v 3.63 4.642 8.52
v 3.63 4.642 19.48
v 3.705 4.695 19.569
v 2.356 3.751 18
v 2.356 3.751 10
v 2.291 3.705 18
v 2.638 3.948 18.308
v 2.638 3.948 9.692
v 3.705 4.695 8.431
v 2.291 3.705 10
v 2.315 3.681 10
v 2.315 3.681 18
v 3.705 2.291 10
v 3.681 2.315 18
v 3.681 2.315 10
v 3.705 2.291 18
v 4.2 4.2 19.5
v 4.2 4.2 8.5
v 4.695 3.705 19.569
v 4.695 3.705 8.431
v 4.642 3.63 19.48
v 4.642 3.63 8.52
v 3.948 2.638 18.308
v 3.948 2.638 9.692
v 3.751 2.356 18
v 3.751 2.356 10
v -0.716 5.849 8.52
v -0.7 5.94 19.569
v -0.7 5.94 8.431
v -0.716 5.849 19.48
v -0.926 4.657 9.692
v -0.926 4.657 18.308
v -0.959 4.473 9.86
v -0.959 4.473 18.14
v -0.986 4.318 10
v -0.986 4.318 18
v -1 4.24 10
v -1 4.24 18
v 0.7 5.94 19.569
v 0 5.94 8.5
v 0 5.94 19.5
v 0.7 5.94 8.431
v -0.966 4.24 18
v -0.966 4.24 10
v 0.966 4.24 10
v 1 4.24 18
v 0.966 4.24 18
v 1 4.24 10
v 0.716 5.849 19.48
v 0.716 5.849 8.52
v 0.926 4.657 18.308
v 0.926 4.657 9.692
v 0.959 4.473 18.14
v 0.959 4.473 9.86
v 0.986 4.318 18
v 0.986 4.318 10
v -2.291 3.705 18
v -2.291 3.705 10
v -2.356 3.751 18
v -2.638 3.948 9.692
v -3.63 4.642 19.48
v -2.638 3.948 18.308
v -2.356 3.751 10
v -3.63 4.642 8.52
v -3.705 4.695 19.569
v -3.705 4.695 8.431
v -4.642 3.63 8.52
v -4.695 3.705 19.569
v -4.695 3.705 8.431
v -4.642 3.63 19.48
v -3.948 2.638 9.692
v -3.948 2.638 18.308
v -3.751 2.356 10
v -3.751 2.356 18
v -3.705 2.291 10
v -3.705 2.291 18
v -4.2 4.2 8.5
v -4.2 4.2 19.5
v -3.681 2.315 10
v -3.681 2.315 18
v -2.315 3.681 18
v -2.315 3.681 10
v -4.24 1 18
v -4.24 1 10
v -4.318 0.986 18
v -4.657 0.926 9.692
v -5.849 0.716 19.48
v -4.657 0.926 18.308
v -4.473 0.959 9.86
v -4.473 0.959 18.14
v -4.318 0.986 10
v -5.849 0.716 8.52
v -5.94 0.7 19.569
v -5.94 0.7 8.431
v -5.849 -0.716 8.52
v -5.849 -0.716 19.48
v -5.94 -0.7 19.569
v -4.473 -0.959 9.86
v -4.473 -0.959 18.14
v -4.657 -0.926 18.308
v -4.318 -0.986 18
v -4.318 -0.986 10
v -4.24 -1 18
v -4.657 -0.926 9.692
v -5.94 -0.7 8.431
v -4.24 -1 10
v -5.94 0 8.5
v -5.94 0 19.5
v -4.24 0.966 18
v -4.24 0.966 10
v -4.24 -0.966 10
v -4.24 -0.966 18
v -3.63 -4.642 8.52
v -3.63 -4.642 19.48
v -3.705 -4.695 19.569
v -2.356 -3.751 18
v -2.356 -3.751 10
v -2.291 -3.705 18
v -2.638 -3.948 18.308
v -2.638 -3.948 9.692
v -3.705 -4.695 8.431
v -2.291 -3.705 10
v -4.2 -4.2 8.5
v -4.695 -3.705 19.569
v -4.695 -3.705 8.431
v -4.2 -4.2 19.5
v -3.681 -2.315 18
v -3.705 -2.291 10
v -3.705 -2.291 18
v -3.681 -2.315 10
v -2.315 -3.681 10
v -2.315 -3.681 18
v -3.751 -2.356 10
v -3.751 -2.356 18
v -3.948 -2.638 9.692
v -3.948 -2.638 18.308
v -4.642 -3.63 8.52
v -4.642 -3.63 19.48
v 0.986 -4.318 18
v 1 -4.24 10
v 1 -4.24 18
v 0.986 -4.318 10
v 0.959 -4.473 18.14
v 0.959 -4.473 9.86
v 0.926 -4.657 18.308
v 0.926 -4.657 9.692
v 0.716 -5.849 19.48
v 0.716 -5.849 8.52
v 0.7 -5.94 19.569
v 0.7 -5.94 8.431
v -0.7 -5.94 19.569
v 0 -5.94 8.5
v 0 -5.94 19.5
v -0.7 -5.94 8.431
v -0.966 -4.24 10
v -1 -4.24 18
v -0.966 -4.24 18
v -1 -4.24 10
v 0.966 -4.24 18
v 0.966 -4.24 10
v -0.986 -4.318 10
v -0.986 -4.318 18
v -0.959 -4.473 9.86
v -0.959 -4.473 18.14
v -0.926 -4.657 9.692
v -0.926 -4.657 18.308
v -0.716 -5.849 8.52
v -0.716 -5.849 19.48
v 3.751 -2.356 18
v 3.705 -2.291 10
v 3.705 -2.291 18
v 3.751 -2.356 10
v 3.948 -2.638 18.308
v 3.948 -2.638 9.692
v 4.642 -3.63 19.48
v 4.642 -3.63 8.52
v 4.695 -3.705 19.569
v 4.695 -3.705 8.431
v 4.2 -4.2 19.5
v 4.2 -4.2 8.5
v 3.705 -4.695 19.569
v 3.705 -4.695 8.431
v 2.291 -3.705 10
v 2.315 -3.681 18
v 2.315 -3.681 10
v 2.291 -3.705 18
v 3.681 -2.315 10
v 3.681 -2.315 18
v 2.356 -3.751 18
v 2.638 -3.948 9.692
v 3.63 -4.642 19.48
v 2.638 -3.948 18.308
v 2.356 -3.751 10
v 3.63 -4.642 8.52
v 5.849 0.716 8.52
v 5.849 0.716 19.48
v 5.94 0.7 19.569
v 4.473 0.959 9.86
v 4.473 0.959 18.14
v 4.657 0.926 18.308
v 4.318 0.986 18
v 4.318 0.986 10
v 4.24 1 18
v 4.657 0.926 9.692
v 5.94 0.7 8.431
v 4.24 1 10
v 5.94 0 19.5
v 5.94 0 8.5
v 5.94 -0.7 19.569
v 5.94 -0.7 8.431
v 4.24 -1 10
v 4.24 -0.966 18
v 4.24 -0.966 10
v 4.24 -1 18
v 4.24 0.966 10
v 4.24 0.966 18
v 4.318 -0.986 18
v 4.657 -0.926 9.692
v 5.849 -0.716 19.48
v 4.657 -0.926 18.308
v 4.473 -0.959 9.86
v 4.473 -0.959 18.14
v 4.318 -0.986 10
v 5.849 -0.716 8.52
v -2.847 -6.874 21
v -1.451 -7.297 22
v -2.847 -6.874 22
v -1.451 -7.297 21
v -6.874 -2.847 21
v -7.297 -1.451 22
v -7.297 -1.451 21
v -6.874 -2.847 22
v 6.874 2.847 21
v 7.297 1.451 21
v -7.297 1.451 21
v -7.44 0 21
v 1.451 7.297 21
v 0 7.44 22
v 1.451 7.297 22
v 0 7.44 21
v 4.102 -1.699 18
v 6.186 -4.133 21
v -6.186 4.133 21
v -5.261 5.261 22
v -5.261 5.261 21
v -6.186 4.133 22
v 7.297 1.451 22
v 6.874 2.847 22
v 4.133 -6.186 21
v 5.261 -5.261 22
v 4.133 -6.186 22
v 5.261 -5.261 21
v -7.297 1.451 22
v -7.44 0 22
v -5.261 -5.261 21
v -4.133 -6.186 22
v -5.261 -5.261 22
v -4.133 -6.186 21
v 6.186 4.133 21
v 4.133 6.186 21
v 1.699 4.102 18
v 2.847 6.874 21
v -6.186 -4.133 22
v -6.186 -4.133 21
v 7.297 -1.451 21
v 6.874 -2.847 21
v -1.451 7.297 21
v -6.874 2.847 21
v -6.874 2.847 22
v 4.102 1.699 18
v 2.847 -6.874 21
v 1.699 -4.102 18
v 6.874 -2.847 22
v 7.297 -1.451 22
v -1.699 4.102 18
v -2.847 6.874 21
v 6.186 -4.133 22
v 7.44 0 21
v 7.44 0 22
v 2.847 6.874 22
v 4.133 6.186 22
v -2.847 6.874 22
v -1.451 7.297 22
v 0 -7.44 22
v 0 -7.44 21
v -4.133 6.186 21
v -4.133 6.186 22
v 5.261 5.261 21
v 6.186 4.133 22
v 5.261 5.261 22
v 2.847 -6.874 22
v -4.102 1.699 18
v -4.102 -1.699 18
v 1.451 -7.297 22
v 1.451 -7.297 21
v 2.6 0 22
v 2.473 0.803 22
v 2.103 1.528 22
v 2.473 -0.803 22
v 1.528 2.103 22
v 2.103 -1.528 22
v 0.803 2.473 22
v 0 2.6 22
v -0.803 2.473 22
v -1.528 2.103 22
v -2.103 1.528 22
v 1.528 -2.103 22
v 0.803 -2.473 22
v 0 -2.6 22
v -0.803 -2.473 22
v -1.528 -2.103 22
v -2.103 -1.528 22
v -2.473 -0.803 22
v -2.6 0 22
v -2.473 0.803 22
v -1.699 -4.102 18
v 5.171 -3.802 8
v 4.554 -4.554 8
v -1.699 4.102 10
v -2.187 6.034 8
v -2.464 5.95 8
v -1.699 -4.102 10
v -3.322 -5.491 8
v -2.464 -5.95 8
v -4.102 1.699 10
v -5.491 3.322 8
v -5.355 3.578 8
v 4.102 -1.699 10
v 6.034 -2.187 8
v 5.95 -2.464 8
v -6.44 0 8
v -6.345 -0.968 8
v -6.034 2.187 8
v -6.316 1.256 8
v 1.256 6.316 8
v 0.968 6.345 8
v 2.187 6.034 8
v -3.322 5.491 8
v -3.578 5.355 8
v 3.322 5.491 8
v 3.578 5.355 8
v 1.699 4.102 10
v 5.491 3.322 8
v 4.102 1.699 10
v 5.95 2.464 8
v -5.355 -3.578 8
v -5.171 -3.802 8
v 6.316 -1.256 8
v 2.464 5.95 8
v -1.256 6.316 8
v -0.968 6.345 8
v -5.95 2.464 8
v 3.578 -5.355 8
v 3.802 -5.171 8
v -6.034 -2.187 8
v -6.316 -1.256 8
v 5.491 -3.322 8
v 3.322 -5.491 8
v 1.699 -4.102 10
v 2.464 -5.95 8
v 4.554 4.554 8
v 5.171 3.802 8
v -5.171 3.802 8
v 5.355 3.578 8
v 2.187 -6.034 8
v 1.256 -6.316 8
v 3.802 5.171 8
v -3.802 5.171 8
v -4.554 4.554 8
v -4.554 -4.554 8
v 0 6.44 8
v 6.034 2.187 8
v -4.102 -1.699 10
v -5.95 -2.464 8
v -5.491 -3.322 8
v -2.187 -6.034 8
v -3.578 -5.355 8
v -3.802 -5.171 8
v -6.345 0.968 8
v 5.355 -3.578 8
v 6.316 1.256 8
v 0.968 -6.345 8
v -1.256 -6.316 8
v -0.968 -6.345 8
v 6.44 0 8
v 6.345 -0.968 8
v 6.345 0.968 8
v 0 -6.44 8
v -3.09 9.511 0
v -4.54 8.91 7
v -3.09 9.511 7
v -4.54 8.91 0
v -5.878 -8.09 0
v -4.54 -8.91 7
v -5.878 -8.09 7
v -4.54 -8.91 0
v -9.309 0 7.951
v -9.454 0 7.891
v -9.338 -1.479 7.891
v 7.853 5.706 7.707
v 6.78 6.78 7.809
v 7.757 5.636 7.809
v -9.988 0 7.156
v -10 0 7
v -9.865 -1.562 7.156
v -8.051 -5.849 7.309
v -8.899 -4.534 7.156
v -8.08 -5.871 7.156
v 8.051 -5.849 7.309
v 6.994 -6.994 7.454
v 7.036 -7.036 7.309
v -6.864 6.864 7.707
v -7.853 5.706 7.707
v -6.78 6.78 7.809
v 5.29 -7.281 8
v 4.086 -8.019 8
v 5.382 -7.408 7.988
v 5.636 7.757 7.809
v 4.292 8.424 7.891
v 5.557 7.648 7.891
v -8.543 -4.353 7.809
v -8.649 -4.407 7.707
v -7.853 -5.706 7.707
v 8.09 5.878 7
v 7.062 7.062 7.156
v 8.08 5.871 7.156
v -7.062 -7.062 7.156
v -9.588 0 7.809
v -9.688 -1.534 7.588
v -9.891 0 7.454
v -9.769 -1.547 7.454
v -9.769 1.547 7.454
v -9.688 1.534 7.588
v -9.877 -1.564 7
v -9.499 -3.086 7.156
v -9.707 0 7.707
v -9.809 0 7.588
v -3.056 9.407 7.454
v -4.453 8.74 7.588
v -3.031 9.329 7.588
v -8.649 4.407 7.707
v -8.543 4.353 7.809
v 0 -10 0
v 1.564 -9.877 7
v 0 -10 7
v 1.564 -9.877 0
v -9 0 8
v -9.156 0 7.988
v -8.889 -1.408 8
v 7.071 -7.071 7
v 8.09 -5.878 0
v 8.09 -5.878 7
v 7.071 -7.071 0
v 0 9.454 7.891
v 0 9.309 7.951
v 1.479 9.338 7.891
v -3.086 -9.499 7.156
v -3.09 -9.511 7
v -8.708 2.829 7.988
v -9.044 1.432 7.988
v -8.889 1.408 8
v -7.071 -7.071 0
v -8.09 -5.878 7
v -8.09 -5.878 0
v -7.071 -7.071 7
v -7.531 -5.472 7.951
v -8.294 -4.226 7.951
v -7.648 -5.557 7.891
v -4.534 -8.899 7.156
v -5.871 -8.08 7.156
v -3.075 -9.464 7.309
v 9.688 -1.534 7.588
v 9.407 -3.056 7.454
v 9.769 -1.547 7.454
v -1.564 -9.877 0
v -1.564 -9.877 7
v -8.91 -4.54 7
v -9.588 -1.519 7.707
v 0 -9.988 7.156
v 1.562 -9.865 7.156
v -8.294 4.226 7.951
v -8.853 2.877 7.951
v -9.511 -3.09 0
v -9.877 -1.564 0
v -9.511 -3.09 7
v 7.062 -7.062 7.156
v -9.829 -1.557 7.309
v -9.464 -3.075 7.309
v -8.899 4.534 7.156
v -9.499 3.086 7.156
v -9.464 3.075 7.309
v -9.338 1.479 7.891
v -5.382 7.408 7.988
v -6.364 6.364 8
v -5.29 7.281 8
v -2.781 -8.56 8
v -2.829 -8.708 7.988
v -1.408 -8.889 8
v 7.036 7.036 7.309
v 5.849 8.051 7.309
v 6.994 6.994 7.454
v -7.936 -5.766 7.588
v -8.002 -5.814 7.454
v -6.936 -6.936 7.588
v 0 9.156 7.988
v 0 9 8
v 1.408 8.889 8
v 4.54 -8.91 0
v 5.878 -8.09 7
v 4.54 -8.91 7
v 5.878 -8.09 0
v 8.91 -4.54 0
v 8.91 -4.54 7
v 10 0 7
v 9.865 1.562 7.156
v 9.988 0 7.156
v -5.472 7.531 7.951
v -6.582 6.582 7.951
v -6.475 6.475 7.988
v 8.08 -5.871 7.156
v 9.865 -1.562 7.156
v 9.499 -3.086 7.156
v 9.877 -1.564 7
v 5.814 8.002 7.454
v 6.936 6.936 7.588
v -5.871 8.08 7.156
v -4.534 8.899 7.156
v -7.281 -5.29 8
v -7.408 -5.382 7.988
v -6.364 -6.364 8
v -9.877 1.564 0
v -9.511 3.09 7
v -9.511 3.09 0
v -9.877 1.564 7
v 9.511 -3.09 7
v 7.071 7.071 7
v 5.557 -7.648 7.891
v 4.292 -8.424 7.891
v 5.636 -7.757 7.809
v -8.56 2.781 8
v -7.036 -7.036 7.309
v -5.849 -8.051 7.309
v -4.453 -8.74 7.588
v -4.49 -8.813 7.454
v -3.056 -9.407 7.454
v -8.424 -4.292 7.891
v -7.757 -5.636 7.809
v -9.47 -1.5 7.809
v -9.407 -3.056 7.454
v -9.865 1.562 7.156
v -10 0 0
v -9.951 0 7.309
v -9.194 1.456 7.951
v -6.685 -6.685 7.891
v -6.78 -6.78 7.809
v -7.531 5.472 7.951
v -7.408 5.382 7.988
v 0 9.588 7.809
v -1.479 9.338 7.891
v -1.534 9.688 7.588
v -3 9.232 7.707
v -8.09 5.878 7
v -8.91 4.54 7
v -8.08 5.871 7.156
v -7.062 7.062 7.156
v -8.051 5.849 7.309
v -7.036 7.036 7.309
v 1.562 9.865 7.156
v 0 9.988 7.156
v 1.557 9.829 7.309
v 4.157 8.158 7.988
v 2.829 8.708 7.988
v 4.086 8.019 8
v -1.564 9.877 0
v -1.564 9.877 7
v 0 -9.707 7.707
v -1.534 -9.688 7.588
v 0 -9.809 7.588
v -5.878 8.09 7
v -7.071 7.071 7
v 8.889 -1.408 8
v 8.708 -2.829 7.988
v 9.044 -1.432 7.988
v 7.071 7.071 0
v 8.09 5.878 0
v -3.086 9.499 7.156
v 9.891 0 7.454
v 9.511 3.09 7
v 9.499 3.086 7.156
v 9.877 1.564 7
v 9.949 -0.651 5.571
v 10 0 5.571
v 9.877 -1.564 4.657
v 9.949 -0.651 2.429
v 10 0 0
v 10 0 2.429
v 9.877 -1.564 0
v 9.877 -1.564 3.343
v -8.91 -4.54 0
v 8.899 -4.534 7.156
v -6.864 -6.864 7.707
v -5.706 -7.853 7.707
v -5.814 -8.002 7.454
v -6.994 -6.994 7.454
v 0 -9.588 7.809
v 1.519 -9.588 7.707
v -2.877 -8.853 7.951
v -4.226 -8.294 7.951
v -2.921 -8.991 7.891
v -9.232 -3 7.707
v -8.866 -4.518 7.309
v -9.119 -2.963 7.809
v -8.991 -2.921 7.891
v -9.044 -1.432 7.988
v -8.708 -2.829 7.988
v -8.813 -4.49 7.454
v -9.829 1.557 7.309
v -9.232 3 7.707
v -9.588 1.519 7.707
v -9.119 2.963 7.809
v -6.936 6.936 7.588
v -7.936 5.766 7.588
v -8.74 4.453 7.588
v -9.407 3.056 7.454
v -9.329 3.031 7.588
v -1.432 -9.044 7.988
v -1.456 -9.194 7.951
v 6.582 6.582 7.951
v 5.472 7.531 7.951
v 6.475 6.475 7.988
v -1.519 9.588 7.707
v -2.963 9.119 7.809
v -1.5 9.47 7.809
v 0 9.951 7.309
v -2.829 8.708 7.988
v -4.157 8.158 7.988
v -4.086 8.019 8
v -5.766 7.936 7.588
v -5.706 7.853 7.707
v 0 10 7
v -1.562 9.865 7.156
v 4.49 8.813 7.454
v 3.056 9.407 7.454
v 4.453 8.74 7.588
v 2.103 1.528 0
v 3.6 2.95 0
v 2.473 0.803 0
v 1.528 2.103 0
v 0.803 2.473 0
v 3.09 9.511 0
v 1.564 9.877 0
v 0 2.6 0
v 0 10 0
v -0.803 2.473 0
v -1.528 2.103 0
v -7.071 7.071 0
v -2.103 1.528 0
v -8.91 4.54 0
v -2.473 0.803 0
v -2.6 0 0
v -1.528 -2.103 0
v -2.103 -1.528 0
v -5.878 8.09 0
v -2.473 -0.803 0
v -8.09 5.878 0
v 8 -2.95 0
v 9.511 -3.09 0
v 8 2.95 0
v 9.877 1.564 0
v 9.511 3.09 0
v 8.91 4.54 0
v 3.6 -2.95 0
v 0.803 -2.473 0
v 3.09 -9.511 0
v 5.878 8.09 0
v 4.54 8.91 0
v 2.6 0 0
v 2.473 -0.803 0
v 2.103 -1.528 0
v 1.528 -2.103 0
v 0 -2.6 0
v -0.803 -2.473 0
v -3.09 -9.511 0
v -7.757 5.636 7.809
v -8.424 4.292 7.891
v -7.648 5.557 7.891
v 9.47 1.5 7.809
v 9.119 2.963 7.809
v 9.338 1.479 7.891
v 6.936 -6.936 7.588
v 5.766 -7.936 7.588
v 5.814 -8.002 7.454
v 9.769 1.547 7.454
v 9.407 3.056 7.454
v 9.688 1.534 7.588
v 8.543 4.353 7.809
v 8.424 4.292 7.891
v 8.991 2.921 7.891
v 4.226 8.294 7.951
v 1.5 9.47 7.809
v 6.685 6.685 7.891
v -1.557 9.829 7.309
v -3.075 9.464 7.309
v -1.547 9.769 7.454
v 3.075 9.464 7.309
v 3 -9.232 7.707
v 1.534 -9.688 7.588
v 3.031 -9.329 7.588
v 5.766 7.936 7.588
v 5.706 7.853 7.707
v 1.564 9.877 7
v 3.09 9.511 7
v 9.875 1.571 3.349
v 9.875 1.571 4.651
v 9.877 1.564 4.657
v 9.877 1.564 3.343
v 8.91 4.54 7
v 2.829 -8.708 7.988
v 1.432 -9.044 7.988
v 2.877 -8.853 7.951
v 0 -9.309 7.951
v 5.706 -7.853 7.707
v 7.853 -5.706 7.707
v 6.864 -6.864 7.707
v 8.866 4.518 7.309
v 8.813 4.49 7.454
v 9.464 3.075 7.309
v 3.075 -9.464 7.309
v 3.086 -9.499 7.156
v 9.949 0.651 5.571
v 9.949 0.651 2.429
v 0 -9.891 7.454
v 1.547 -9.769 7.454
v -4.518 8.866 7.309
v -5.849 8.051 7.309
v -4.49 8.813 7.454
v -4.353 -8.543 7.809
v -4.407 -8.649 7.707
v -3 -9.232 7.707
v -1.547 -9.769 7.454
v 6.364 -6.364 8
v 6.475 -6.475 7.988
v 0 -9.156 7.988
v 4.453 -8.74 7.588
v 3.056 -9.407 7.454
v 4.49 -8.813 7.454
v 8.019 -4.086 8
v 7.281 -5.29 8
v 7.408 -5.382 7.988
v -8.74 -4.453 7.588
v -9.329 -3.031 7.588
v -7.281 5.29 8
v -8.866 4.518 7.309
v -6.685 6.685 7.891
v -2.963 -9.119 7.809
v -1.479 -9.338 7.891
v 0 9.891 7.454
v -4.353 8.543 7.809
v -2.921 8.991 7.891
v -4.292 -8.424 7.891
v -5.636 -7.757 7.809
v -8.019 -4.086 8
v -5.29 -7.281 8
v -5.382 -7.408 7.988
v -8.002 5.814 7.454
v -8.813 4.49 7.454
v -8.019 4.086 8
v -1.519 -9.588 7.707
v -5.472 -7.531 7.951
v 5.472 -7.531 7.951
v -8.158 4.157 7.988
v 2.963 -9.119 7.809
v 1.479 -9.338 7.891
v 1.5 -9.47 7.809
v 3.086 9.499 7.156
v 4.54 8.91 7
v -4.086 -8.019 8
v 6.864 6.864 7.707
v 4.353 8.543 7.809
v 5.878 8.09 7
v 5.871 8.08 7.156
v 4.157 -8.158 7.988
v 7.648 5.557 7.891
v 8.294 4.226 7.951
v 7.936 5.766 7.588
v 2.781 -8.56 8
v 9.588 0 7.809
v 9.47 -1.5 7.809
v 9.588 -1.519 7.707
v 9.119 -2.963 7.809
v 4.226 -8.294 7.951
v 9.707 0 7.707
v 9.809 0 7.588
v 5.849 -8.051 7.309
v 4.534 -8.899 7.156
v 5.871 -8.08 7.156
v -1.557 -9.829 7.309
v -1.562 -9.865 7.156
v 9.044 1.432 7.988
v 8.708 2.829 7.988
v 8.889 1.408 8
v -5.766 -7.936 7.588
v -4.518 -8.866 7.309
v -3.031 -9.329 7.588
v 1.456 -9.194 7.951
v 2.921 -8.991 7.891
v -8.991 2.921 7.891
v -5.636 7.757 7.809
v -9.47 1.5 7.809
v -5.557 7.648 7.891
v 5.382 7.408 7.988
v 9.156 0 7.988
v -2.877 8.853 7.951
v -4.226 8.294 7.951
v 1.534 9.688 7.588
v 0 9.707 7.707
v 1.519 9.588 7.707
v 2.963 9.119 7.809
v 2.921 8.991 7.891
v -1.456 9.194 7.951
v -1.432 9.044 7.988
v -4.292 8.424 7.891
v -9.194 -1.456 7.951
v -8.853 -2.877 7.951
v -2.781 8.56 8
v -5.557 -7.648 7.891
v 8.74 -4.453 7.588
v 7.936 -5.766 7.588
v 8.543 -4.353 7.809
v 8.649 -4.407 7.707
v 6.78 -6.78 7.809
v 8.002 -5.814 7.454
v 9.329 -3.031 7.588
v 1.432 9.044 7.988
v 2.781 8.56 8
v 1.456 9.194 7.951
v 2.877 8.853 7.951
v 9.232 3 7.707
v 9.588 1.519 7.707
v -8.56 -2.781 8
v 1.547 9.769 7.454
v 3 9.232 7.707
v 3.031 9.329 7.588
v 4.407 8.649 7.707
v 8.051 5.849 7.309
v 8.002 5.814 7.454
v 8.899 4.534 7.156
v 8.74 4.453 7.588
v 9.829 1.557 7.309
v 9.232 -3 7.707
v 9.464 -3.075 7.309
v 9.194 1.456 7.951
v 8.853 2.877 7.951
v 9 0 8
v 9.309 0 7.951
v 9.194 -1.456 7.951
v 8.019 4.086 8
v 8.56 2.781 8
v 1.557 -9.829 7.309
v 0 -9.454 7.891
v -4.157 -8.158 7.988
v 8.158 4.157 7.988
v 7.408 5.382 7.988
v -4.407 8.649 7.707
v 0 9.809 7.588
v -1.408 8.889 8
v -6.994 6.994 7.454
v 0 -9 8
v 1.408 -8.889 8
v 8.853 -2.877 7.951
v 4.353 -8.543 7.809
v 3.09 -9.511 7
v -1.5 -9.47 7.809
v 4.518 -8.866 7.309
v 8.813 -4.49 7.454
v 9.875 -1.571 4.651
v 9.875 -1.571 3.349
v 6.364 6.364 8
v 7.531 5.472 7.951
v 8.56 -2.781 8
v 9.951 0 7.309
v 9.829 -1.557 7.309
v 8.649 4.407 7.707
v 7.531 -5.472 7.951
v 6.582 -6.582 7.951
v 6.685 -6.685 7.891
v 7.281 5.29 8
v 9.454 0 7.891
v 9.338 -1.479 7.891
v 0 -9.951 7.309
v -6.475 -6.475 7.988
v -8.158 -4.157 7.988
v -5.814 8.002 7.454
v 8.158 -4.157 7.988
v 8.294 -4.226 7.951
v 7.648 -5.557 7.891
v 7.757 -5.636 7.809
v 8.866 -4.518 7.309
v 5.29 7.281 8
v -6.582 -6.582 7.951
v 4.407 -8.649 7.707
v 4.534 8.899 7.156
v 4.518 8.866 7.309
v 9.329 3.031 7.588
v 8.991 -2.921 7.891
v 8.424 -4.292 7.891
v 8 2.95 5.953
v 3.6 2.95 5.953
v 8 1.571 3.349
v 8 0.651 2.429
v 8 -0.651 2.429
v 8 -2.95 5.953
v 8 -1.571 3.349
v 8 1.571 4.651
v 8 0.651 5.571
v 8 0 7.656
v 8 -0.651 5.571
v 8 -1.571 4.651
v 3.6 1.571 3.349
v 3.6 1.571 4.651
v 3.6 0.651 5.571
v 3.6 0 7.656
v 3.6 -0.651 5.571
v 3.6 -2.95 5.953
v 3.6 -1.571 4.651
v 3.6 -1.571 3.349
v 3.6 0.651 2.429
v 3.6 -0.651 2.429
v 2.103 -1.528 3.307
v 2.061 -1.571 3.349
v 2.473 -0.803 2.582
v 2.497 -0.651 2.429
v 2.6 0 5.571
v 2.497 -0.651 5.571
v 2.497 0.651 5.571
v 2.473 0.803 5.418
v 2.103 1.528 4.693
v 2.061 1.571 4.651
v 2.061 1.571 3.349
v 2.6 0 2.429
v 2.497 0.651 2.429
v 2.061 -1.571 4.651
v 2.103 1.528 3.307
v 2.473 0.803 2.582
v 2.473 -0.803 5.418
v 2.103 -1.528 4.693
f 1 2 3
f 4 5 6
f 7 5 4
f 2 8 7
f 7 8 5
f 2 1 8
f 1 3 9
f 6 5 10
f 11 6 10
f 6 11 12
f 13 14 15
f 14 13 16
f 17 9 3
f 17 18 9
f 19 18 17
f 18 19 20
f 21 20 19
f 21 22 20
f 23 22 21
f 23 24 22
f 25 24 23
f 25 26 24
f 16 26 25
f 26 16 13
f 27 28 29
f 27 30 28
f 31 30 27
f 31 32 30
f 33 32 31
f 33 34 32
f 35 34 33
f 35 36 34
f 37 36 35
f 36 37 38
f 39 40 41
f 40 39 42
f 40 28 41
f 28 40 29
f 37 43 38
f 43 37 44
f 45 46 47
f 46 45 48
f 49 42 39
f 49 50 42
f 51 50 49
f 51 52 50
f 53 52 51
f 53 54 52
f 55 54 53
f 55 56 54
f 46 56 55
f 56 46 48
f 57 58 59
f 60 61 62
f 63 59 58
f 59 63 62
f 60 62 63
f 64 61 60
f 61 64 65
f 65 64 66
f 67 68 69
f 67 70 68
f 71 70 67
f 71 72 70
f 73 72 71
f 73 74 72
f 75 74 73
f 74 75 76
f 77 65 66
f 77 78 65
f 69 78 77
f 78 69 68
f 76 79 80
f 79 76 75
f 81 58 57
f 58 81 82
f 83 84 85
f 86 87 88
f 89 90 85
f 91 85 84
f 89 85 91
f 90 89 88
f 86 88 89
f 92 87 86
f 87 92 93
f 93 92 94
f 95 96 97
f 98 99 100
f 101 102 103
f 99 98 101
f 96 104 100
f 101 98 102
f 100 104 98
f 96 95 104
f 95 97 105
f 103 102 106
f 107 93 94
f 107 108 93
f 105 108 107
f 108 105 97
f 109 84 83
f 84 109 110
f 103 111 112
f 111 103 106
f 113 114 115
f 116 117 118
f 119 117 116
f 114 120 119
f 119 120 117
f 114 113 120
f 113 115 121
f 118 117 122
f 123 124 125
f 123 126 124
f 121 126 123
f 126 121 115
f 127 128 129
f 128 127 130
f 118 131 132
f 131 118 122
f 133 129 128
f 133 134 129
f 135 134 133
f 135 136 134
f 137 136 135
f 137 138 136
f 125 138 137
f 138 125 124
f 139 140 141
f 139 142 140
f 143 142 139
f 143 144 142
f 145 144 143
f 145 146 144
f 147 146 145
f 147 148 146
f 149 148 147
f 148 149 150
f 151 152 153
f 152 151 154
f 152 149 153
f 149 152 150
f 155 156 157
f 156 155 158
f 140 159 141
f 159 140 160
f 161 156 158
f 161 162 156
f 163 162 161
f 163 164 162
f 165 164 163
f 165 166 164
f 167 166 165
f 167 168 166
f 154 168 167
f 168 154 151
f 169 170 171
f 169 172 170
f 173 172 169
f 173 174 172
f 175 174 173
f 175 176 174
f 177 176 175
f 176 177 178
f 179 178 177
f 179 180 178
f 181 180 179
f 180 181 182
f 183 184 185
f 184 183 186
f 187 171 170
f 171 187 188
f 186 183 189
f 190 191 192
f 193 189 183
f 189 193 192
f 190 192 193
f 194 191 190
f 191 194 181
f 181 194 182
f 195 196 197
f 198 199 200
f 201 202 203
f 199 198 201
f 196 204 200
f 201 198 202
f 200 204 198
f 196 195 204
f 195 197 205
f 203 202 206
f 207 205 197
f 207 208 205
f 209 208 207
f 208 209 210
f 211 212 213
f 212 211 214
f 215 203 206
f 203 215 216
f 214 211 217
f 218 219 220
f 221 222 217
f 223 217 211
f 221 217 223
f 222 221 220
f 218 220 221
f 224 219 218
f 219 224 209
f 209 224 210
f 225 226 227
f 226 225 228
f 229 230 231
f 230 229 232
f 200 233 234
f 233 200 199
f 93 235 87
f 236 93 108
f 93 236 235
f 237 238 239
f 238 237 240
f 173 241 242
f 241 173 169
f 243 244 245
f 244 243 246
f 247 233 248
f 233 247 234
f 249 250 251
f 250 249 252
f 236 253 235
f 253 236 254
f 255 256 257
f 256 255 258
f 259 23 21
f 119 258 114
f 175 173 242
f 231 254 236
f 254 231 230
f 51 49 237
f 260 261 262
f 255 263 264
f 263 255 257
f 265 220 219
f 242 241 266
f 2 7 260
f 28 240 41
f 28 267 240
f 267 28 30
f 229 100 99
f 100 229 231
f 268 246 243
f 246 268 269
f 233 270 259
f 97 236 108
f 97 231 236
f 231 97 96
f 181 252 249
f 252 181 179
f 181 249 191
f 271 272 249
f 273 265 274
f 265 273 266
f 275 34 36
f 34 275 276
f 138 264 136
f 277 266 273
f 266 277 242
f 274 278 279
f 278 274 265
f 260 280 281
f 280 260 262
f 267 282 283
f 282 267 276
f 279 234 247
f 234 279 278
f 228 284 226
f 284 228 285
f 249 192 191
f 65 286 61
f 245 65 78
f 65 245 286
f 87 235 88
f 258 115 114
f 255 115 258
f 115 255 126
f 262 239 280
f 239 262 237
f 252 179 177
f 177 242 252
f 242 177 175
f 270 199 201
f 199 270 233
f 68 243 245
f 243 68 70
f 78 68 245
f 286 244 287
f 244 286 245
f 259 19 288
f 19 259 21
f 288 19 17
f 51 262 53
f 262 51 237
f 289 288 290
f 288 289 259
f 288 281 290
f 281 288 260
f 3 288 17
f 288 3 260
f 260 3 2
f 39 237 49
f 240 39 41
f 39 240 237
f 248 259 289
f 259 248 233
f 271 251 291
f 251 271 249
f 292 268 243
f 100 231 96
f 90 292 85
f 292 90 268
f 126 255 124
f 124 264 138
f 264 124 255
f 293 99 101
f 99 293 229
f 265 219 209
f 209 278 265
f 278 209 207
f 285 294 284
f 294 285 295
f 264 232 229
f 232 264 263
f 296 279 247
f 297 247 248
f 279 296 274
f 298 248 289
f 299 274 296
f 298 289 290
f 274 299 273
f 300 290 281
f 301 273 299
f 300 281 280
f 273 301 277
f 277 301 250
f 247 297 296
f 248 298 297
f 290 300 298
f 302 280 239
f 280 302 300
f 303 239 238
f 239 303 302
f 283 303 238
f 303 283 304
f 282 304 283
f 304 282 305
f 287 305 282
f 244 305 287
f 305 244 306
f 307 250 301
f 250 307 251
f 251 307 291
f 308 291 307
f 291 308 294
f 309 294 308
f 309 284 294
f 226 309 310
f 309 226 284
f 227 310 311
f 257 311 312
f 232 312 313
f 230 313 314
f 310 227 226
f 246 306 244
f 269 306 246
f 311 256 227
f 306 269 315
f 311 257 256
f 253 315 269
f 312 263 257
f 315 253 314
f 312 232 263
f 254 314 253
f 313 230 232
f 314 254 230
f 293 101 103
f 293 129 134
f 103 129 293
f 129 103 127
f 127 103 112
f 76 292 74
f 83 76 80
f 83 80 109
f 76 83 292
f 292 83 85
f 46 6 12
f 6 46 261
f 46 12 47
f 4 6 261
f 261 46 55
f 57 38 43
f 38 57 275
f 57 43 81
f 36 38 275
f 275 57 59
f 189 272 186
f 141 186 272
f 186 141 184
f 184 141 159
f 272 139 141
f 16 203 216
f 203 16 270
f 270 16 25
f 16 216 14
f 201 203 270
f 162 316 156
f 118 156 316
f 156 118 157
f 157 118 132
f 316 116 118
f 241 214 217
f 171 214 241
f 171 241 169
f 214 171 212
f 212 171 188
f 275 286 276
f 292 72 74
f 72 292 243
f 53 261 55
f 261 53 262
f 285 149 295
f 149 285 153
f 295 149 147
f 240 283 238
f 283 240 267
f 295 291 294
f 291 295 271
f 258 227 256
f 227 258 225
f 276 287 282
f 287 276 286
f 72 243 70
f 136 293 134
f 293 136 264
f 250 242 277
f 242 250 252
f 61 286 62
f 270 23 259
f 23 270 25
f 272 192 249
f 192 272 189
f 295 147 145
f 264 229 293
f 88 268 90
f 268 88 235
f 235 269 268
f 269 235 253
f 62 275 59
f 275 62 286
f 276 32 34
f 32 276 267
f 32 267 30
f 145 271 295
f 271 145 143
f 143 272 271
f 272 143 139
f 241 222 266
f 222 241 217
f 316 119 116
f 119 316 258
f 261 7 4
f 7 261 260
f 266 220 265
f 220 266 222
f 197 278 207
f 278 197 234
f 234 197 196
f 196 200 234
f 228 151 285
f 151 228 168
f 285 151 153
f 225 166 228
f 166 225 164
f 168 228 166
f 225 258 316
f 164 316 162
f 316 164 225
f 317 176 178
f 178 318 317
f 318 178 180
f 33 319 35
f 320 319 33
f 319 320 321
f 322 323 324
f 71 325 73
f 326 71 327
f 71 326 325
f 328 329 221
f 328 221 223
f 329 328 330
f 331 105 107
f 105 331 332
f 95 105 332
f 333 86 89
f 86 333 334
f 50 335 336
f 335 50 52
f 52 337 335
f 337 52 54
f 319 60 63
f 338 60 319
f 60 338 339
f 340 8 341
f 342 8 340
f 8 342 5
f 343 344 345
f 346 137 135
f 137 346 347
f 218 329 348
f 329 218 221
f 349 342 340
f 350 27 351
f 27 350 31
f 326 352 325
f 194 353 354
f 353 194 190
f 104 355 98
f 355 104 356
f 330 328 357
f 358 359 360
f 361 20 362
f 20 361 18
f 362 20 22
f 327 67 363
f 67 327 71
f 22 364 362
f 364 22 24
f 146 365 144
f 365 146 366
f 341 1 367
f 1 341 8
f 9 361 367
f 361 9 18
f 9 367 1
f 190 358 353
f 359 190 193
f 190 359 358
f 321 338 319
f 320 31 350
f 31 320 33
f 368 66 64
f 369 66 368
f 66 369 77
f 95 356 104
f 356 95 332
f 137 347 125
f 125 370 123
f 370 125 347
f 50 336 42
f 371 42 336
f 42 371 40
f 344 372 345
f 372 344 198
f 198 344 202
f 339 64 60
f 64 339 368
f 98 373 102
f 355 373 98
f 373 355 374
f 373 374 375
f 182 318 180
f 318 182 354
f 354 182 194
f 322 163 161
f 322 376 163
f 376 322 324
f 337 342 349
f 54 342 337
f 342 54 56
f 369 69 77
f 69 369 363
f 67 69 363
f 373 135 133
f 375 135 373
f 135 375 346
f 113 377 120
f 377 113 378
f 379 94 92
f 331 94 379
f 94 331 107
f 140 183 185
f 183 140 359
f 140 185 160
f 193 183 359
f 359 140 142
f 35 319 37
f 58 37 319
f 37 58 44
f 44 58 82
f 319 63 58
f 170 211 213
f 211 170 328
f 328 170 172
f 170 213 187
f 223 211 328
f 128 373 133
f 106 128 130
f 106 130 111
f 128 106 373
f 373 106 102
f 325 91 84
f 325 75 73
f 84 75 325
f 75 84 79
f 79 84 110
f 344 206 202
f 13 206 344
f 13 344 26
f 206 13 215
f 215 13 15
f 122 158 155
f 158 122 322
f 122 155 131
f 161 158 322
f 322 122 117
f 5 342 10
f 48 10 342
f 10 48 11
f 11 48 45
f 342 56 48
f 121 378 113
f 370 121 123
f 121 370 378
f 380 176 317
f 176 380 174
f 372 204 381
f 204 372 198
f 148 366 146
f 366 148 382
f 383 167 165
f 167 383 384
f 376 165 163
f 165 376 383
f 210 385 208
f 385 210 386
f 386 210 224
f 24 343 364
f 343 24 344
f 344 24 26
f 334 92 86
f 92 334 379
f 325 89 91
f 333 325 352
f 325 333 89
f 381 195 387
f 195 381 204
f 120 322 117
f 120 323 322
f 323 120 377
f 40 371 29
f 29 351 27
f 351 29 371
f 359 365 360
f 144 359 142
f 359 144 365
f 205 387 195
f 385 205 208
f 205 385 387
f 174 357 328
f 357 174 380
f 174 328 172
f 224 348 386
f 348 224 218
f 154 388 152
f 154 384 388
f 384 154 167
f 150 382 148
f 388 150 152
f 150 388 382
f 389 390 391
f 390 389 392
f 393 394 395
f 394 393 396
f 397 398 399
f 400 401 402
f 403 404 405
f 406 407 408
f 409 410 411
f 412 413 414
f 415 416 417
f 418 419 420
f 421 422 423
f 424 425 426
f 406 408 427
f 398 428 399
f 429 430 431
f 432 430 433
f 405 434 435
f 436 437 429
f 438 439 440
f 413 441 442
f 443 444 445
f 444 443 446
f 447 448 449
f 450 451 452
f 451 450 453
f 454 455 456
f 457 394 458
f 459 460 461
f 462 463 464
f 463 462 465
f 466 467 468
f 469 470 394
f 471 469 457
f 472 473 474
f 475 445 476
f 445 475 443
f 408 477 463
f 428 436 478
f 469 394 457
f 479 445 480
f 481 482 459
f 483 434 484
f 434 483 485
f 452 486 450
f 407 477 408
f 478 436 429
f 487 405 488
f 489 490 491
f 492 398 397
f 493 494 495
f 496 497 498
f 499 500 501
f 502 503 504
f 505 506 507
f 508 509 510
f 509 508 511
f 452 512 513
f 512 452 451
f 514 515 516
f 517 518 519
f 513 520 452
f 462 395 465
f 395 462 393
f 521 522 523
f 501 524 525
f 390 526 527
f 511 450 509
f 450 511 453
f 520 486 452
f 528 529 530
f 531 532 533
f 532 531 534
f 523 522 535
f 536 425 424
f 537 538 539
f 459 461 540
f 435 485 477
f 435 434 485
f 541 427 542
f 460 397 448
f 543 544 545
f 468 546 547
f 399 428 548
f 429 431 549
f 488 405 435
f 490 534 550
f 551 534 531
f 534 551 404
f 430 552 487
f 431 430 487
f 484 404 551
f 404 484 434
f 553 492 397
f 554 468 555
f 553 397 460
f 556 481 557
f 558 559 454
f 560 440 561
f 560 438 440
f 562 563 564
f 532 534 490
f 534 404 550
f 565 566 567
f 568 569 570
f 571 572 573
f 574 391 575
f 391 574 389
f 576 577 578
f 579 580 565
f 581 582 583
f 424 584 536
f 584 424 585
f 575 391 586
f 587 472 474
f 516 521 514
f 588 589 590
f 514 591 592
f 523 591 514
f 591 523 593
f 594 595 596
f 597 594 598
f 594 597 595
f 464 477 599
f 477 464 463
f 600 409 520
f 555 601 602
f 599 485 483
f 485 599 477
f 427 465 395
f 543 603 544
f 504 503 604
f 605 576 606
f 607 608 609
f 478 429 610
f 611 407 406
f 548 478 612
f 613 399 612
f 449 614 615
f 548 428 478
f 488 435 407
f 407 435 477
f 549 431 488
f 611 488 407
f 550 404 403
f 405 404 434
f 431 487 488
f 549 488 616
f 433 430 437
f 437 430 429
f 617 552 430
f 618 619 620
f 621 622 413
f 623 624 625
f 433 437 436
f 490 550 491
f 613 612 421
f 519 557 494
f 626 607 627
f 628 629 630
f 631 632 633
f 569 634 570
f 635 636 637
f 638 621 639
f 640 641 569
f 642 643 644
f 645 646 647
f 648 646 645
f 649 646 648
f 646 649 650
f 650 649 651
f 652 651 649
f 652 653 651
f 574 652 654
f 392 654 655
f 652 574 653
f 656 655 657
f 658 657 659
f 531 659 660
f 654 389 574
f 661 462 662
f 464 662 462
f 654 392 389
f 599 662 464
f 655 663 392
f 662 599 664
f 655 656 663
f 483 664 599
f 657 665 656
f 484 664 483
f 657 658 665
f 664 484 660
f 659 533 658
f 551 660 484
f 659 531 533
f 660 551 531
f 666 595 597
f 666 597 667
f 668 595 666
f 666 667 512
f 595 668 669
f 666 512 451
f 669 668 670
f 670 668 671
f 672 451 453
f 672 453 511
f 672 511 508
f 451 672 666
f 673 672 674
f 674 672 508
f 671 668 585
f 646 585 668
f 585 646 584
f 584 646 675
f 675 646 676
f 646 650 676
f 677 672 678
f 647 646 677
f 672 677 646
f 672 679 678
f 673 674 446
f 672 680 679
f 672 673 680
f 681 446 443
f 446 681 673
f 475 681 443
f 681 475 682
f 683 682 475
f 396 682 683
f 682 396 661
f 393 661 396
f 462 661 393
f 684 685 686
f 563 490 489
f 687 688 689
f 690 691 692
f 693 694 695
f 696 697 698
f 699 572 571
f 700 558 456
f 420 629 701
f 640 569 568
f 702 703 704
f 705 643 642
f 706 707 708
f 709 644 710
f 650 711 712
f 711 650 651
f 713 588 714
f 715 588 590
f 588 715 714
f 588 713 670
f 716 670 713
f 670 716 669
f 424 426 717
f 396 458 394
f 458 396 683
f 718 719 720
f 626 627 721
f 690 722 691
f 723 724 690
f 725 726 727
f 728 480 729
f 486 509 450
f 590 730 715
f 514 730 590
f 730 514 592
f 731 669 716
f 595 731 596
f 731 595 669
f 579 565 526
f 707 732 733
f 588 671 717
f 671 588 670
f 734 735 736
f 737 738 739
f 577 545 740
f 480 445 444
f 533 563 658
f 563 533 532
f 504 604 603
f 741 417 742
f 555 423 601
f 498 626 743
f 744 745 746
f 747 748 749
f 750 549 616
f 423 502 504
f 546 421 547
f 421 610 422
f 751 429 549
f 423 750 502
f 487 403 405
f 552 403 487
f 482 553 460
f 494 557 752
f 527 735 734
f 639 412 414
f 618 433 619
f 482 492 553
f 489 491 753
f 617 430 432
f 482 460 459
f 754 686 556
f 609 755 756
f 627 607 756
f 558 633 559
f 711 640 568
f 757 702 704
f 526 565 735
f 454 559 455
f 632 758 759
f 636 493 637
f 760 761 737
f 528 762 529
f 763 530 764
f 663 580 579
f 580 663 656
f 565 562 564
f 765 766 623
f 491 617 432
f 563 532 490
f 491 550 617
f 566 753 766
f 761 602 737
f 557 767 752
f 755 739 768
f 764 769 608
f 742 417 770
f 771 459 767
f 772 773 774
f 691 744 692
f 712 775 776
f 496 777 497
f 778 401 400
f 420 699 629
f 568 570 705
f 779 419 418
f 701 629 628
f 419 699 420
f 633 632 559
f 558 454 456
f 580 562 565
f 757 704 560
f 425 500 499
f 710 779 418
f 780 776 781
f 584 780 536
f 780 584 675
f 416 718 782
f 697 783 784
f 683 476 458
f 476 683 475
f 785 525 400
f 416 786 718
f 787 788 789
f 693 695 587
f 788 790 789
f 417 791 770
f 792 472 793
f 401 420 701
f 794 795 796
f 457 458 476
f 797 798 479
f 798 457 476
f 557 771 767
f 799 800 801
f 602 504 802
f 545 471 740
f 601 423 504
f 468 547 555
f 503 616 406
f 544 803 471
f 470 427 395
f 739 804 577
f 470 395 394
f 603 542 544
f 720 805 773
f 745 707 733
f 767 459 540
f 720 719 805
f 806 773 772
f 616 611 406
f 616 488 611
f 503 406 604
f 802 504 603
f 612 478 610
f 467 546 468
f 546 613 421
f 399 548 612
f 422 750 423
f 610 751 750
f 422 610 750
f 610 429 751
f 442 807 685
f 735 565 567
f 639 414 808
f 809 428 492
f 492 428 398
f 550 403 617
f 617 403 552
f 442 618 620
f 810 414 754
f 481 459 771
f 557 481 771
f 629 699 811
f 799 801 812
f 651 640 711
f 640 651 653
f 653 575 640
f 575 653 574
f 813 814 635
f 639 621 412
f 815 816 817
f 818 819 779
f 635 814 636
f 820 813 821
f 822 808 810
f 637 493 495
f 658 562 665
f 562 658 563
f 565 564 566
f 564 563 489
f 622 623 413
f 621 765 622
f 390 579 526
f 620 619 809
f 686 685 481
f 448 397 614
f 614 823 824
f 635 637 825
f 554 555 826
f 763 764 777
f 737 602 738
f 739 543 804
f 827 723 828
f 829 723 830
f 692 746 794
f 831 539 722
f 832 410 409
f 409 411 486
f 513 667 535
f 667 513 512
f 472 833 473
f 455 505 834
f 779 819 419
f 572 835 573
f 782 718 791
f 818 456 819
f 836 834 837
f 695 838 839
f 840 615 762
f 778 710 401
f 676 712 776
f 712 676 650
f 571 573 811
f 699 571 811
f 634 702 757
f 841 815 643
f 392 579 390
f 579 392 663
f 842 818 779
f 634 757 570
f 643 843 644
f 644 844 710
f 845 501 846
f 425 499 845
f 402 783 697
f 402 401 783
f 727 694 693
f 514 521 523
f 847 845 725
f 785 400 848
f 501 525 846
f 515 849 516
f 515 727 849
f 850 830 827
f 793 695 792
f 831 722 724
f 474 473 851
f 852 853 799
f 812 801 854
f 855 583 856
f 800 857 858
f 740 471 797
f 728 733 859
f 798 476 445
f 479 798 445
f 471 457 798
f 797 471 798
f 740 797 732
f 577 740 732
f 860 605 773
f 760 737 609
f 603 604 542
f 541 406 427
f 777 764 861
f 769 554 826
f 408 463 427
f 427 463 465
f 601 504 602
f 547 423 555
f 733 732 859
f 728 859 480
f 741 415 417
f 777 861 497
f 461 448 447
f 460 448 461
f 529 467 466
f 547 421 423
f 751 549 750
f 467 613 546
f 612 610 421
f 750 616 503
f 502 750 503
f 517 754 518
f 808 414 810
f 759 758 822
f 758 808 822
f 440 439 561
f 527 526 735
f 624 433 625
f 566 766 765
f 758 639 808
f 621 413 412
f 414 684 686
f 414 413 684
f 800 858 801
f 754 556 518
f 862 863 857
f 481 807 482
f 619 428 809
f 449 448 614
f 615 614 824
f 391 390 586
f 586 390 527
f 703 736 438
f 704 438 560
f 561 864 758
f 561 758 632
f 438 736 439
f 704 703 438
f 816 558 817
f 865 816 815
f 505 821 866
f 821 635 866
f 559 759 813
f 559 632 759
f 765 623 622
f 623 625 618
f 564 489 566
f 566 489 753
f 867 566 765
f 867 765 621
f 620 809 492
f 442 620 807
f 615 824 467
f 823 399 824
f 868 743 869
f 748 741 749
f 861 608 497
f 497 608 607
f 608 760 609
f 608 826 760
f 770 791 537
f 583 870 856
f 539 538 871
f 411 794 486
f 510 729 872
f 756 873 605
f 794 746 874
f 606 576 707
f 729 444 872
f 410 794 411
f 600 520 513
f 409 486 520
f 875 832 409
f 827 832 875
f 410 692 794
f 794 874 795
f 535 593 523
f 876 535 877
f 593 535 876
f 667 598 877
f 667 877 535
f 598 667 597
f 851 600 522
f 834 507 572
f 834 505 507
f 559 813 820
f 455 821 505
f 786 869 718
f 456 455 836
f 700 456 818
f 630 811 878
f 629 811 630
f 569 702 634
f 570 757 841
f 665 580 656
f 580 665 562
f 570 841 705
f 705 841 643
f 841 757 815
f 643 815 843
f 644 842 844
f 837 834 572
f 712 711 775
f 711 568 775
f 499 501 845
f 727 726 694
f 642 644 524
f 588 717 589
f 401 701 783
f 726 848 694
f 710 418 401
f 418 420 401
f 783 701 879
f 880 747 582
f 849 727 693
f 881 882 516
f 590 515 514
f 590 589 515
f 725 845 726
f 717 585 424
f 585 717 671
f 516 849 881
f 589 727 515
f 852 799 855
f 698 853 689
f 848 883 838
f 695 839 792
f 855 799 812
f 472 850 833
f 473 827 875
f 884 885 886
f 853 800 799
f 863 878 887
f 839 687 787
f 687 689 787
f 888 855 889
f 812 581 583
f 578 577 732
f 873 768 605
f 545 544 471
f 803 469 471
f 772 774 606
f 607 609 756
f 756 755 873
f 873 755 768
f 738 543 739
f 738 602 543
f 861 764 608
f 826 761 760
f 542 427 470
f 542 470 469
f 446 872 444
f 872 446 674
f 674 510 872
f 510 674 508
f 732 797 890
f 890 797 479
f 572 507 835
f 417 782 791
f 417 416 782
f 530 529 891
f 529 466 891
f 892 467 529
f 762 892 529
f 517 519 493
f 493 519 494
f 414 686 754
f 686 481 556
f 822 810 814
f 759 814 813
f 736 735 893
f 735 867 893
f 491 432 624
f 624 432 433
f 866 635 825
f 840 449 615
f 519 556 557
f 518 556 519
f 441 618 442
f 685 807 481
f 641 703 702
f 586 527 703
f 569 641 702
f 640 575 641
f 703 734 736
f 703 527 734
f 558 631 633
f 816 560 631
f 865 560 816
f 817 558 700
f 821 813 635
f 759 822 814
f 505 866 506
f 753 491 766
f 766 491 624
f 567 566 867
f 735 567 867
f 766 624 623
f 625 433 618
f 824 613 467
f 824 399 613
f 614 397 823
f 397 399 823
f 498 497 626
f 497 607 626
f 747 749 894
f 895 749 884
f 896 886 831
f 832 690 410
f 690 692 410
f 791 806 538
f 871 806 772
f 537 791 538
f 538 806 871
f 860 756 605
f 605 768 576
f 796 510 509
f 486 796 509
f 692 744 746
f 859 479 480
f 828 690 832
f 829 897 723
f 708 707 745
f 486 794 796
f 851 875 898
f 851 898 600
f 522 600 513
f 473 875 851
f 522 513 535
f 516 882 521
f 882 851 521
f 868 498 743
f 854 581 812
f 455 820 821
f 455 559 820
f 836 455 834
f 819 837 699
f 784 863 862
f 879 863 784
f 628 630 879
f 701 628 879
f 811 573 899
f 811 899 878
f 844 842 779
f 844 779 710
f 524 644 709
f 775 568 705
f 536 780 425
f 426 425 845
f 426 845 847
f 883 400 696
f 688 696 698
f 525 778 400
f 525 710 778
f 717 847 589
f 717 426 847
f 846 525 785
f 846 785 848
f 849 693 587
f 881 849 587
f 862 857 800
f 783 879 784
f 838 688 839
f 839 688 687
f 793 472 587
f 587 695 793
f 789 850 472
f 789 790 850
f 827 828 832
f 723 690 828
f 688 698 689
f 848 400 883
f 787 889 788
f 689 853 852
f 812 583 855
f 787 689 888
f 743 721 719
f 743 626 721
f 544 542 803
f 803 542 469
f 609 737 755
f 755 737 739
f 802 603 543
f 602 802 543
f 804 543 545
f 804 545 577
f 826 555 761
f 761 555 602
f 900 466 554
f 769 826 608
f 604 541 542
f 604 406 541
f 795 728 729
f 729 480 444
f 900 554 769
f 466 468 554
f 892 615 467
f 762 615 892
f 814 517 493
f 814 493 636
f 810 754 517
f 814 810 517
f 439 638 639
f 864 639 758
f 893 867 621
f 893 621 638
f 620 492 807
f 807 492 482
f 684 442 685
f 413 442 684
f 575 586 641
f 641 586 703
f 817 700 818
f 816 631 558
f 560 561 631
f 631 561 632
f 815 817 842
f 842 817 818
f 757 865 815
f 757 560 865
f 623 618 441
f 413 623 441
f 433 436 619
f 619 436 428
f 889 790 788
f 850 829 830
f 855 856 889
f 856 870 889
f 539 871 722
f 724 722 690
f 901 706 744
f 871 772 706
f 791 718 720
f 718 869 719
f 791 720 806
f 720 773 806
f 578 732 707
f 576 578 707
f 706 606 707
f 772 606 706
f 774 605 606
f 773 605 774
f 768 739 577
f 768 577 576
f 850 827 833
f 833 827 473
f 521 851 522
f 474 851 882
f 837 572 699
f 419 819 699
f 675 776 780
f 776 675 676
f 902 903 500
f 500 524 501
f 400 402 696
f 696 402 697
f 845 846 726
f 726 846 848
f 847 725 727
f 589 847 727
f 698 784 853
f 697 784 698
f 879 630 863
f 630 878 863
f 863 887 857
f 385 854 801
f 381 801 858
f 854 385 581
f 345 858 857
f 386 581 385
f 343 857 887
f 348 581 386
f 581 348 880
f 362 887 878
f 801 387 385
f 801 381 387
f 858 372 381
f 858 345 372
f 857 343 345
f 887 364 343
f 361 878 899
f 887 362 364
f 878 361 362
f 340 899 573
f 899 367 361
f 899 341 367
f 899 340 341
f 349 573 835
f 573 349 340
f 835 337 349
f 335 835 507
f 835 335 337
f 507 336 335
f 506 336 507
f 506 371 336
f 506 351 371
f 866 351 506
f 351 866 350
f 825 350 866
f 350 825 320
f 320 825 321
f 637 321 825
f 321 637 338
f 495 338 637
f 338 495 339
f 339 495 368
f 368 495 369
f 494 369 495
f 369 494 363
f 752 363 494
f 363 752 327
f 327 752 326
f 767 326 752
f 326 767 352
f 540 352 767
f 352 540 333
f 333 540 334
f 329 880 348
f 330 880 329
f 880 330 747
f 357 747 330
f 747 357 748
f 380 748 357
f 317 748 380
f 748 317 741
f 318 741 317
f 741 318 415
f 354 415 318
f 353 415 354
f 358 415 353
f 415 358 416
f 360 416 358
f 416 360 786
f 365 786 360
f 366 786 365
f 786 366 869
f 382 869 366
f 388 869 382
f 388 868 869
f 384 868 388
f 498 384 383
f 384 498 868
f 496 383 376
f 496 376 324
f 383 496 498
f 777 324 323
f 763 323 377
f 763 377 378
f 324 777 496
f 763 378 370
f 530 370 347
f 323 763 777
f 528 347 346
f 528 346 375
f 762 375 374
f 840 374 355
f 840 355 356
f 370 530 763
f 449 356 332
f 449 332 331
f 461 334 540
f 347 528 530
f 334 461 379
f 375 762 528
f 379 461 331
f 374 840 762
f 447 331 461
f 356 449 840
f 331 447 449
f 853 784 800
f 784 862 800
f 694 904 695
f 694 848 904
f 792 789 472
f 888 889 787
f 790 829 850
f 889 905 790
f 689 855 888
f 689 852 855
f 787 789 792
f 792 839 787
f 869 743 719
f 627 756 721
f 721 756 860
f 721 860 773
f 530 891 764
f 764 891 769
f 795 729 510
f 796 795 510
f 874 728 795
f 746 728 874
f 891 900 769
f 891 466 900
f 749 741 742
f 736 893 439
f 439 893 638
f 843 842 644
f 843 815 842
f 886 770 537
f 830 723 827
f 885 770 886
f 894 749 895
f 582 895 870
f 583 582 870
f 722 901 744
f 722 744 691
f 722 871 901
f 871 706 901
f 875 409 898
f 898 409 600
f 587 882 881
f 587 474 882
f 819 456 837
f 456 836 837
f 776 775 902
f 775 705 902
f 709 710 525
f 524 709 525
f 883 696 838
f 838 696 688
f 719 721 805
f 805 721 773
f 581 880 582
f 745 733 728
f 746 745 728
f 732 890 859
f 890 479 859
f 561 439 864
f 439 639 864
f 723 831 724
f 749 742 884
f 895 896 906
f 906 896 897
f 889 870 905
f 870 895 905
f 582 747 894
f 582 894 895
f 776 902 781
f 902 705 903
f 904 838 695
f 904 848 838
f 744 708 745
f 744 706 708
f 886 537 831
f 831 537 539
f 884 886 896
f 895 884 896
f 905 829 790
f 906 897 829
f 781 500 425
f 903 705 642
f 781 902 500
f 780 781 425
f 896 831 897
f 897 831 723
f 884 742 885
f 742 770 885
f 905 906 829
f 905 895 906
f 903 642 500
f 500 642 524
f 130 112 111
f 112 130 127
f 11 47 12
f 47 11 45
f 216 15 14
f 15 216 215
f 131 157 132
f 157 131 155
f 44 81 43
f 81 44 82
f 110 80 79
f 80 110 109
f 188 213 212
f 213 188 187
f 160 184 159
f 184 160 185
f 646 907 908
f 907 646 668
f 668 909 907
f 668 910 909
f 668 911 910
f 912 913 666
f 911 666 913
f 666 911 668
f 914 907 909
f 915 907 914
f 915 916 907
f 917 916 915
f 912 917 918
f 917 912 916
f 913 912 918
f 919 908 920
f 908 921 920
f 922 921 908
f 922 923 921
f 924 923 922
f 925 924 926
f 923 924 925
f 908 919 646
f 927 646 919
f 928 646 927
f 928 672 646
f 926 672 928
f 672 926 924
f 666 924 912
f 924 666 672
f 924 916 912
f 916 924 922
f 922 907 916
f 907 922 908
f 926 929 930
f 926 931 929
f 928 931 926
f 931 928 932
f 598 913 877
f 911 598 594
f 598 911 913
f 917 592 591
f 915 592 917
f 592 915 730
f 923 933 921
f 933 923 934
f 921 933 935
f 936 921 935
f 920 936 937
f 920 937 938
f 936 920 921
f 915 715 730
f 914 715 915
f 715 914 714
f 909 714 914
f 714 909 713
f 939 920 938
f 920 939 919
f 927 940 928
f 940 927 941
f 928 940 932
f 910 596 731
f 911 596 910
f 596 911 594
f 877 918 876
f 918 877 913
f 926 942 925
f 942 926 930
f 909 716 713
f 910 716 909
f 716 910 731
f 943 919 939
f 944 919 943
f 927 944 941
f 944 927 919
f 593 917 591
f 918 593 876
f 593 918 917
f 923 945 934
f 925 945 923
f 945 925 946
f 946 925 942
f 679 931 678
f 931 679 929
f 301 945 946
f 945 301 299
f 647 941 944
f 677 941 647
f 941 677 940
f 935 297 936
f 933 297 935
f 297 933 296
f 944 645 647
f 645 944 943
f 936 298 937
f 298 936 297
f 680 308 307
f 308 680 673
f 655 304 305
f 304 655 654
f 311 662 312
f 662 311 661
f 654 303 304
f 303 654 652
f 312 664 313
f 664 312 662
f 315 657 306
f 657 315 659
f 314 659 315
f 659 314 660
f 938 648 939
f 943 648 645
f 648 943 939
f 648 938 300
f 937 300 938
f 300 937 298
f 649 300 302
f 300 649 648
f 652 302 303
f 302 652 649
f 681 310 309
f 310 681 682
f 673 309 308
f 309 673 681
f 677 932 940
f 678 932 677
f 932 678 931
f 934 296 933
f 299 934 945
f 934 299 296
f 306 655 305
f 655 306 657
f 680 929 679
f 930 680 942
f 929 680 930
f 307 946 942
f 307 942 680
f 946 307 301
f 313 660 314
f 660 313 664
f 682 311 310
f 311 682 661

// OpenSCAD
// Belt pulley is http://www.thingiverse.com/thing:3104 by GilesBathgate
// GPLV3
// Made parametric by droftarts September 2011

/**
 * @name Pulley
 * @category Printed
 * @using 1 x m3 nut, normal or nyloc
 * @using 1 x m3x10 set screw or 1 x m3x8 grub screw
 */

module pulley()
{

m3_dia = 3.4;		// 3mm hole diameter
m3_nut_hex = 1;		// 1 for hex, 0 for square nut
m3_nut_flats = 5.9;	// normal M3 hex nut exact width = 5.5
m3_nut_depth = 4.4;	// normal M3 hex nut exact depth = 2.4, nyloc = 4
motor_shaft = 5.2;	// exact NEMA17 motor shaft size = 5

retainer = 1;		// Belt retainer end, 1 for Yes, 0 for No
idler = 0;			// 0 = No, 1 = Yes; fills in dish of retainer, if required

teeth = 8;			// Number of teeth, standard Mendel = 8
pulley_t_ht = 12;	// length of toothed part of pulley, standard = 12
pulley_b_ht = 8;		// pulley base height, standard = 8
pulley_b_dia = 20;	// pulley base diameter, standard = 20
no_of_nuts = 1;		// number of captive nuts required, standard = 1
nut_angle = 90;		// angle between nuts, standard = 90

// calculated constants

m3_nut_points = 2*((m3_nut_flats/2)/cos(30)); // This is needed for the nut trap
teeth_dia = ((1.591 * pow(teeth,1.064)) / (0.6523 + pow(teeth,1.064)))*teeth; // Outside diameter of teeth
echo (teeth_dia);
echo (teeth_dia/2-1.3); // radius of shaft under teeth

echo((teeth_dia+teeth_dia/2-1.3)/2);

polygon_points = [[0,0],[1+teeth_dia/2-2.5,0],[4+teeth_dia/2-2.5,3],[4+teeth_dia/2-2.5,4],[2,4],[0,4]];
polygon_paths = [[0,1,2,3,4,5,0]];
	module spur()
	{
		linear_extrude(height=pulley_t_ht) polygon([[-1.7,-1],[-1.7,1],[0,0.7],[0,-0.7]],[[0,1,2,3,0]]);
	}

	module retainer()
	{
		rotate_extrude($fn=teeth*4) polygon(polygon_points,polygon_paths);
	}

difference()
 {	 
 	union()
 	{
 		//base

		if ( pulley_b_ht < 2 ) { echo ("CAN'T DRAW PULLEY BASE, HEIGHT LESS THAN 2!!!"); } else {
 			rotate_extrude($fn=pulley_b_dia*2)
 			{
 					square([pulley_b_dia/2-1,pulley_b_ht]);
 					square([pulley_b_dia/2,pulley_b_ht-1]);
 					translate([pulley_b_dia/2-1,pulley_b_ht-1]) circle(1);
 			}
		}

    	//shaft
    	//cylinder(r=teeth_dia/2-1.3,h=pulley_b_ht + pulley_t_ht, $fn=teeth);
    	translate(v=[0,0,pulley_b_ht]) cylinder(r=teeth_dia/2-1.3,h=pulley_t_ht, $fn=teeth);
    	//spurs
	for(i=[1:teeth]) rotate([0,0,i*(360/teeth)])
	translate([teeth_dia/2,0,pulley_b_ht]) spur();

	//belt retainer end
	if ( retainer > 0 ) {
        translate ([0,0,pulley_b_ht + pulley_t_ht - 2]) retainer();
        mirror(v=[0,0,1]) translate ([0,0, -(pulley_t_ht - 2)]) retainer();
	if ( idler > 0 ) {translate ([0,0,pulley_b_ht + pulley_t_ht]) cylinder(r=teeth_dia/2,h=2,$fn=teeth*2);}}

	}
   
	//shaft hole
    translate([0,0,-1])cylinder(r=motor_shaft/2,h=pulley_b_ht + pulley_t_ht + 4,$fn=motor_shaft*4);
    		
    //captive nut and grub holes

	if ( pulley_b_ht < m3_nut_flats ) { echo ("CAN'T DRAW CAPTIVE NUTS, HEIGHT LESS THAN NUT DIAMETER!!!"); } else {
	if ( (pulley_b_dia - motor_shaft)/2 < m3_nut_depth + 3 ) { echo ("CAN'T DRAW CAPTIVE NUTS, DIAMETER TOO SMALL FOR NUT DEPTH!!!"); } else {

		for(j=[1:no_of_nuts]) rotate([0,0,j*nut_angle])
		translate([0,0,pulley_b_ht/2])rotate([90,0,0])

		union()
		{
			//entrance
			translate([0,-pulley_b_ht/4-0.5,motor_shaft/2+m3_nut_depth/2+1]) cube([m3_nut_flats,pulley_b_ht/2+1,m3_nut_depth],center=true);

			//nut
			if ( m3_nut_hex > 0 )
				{
					translate([0,0.25,motor_shaft/2+m3_nut_depth/2+1]) rotate([0,0,30]) cylinder(r=m3_nut_points/2,h=m3_nut_depth,center=true,$fn=6);
				} else {
					translate([0,0.25,motor_shaft/2+m3_nut_depth/2+1]) cube([m3_nut_flats,m3_nut_flats,m3_nut_depth],center=true);
				}

			//grub hole
			rotate([0,0,22.5])cylinder(r=m3_dia/2,h=pulley_b_dia/2+1,$fn=8);
		}
	}}
 }
   
}
pulley();
